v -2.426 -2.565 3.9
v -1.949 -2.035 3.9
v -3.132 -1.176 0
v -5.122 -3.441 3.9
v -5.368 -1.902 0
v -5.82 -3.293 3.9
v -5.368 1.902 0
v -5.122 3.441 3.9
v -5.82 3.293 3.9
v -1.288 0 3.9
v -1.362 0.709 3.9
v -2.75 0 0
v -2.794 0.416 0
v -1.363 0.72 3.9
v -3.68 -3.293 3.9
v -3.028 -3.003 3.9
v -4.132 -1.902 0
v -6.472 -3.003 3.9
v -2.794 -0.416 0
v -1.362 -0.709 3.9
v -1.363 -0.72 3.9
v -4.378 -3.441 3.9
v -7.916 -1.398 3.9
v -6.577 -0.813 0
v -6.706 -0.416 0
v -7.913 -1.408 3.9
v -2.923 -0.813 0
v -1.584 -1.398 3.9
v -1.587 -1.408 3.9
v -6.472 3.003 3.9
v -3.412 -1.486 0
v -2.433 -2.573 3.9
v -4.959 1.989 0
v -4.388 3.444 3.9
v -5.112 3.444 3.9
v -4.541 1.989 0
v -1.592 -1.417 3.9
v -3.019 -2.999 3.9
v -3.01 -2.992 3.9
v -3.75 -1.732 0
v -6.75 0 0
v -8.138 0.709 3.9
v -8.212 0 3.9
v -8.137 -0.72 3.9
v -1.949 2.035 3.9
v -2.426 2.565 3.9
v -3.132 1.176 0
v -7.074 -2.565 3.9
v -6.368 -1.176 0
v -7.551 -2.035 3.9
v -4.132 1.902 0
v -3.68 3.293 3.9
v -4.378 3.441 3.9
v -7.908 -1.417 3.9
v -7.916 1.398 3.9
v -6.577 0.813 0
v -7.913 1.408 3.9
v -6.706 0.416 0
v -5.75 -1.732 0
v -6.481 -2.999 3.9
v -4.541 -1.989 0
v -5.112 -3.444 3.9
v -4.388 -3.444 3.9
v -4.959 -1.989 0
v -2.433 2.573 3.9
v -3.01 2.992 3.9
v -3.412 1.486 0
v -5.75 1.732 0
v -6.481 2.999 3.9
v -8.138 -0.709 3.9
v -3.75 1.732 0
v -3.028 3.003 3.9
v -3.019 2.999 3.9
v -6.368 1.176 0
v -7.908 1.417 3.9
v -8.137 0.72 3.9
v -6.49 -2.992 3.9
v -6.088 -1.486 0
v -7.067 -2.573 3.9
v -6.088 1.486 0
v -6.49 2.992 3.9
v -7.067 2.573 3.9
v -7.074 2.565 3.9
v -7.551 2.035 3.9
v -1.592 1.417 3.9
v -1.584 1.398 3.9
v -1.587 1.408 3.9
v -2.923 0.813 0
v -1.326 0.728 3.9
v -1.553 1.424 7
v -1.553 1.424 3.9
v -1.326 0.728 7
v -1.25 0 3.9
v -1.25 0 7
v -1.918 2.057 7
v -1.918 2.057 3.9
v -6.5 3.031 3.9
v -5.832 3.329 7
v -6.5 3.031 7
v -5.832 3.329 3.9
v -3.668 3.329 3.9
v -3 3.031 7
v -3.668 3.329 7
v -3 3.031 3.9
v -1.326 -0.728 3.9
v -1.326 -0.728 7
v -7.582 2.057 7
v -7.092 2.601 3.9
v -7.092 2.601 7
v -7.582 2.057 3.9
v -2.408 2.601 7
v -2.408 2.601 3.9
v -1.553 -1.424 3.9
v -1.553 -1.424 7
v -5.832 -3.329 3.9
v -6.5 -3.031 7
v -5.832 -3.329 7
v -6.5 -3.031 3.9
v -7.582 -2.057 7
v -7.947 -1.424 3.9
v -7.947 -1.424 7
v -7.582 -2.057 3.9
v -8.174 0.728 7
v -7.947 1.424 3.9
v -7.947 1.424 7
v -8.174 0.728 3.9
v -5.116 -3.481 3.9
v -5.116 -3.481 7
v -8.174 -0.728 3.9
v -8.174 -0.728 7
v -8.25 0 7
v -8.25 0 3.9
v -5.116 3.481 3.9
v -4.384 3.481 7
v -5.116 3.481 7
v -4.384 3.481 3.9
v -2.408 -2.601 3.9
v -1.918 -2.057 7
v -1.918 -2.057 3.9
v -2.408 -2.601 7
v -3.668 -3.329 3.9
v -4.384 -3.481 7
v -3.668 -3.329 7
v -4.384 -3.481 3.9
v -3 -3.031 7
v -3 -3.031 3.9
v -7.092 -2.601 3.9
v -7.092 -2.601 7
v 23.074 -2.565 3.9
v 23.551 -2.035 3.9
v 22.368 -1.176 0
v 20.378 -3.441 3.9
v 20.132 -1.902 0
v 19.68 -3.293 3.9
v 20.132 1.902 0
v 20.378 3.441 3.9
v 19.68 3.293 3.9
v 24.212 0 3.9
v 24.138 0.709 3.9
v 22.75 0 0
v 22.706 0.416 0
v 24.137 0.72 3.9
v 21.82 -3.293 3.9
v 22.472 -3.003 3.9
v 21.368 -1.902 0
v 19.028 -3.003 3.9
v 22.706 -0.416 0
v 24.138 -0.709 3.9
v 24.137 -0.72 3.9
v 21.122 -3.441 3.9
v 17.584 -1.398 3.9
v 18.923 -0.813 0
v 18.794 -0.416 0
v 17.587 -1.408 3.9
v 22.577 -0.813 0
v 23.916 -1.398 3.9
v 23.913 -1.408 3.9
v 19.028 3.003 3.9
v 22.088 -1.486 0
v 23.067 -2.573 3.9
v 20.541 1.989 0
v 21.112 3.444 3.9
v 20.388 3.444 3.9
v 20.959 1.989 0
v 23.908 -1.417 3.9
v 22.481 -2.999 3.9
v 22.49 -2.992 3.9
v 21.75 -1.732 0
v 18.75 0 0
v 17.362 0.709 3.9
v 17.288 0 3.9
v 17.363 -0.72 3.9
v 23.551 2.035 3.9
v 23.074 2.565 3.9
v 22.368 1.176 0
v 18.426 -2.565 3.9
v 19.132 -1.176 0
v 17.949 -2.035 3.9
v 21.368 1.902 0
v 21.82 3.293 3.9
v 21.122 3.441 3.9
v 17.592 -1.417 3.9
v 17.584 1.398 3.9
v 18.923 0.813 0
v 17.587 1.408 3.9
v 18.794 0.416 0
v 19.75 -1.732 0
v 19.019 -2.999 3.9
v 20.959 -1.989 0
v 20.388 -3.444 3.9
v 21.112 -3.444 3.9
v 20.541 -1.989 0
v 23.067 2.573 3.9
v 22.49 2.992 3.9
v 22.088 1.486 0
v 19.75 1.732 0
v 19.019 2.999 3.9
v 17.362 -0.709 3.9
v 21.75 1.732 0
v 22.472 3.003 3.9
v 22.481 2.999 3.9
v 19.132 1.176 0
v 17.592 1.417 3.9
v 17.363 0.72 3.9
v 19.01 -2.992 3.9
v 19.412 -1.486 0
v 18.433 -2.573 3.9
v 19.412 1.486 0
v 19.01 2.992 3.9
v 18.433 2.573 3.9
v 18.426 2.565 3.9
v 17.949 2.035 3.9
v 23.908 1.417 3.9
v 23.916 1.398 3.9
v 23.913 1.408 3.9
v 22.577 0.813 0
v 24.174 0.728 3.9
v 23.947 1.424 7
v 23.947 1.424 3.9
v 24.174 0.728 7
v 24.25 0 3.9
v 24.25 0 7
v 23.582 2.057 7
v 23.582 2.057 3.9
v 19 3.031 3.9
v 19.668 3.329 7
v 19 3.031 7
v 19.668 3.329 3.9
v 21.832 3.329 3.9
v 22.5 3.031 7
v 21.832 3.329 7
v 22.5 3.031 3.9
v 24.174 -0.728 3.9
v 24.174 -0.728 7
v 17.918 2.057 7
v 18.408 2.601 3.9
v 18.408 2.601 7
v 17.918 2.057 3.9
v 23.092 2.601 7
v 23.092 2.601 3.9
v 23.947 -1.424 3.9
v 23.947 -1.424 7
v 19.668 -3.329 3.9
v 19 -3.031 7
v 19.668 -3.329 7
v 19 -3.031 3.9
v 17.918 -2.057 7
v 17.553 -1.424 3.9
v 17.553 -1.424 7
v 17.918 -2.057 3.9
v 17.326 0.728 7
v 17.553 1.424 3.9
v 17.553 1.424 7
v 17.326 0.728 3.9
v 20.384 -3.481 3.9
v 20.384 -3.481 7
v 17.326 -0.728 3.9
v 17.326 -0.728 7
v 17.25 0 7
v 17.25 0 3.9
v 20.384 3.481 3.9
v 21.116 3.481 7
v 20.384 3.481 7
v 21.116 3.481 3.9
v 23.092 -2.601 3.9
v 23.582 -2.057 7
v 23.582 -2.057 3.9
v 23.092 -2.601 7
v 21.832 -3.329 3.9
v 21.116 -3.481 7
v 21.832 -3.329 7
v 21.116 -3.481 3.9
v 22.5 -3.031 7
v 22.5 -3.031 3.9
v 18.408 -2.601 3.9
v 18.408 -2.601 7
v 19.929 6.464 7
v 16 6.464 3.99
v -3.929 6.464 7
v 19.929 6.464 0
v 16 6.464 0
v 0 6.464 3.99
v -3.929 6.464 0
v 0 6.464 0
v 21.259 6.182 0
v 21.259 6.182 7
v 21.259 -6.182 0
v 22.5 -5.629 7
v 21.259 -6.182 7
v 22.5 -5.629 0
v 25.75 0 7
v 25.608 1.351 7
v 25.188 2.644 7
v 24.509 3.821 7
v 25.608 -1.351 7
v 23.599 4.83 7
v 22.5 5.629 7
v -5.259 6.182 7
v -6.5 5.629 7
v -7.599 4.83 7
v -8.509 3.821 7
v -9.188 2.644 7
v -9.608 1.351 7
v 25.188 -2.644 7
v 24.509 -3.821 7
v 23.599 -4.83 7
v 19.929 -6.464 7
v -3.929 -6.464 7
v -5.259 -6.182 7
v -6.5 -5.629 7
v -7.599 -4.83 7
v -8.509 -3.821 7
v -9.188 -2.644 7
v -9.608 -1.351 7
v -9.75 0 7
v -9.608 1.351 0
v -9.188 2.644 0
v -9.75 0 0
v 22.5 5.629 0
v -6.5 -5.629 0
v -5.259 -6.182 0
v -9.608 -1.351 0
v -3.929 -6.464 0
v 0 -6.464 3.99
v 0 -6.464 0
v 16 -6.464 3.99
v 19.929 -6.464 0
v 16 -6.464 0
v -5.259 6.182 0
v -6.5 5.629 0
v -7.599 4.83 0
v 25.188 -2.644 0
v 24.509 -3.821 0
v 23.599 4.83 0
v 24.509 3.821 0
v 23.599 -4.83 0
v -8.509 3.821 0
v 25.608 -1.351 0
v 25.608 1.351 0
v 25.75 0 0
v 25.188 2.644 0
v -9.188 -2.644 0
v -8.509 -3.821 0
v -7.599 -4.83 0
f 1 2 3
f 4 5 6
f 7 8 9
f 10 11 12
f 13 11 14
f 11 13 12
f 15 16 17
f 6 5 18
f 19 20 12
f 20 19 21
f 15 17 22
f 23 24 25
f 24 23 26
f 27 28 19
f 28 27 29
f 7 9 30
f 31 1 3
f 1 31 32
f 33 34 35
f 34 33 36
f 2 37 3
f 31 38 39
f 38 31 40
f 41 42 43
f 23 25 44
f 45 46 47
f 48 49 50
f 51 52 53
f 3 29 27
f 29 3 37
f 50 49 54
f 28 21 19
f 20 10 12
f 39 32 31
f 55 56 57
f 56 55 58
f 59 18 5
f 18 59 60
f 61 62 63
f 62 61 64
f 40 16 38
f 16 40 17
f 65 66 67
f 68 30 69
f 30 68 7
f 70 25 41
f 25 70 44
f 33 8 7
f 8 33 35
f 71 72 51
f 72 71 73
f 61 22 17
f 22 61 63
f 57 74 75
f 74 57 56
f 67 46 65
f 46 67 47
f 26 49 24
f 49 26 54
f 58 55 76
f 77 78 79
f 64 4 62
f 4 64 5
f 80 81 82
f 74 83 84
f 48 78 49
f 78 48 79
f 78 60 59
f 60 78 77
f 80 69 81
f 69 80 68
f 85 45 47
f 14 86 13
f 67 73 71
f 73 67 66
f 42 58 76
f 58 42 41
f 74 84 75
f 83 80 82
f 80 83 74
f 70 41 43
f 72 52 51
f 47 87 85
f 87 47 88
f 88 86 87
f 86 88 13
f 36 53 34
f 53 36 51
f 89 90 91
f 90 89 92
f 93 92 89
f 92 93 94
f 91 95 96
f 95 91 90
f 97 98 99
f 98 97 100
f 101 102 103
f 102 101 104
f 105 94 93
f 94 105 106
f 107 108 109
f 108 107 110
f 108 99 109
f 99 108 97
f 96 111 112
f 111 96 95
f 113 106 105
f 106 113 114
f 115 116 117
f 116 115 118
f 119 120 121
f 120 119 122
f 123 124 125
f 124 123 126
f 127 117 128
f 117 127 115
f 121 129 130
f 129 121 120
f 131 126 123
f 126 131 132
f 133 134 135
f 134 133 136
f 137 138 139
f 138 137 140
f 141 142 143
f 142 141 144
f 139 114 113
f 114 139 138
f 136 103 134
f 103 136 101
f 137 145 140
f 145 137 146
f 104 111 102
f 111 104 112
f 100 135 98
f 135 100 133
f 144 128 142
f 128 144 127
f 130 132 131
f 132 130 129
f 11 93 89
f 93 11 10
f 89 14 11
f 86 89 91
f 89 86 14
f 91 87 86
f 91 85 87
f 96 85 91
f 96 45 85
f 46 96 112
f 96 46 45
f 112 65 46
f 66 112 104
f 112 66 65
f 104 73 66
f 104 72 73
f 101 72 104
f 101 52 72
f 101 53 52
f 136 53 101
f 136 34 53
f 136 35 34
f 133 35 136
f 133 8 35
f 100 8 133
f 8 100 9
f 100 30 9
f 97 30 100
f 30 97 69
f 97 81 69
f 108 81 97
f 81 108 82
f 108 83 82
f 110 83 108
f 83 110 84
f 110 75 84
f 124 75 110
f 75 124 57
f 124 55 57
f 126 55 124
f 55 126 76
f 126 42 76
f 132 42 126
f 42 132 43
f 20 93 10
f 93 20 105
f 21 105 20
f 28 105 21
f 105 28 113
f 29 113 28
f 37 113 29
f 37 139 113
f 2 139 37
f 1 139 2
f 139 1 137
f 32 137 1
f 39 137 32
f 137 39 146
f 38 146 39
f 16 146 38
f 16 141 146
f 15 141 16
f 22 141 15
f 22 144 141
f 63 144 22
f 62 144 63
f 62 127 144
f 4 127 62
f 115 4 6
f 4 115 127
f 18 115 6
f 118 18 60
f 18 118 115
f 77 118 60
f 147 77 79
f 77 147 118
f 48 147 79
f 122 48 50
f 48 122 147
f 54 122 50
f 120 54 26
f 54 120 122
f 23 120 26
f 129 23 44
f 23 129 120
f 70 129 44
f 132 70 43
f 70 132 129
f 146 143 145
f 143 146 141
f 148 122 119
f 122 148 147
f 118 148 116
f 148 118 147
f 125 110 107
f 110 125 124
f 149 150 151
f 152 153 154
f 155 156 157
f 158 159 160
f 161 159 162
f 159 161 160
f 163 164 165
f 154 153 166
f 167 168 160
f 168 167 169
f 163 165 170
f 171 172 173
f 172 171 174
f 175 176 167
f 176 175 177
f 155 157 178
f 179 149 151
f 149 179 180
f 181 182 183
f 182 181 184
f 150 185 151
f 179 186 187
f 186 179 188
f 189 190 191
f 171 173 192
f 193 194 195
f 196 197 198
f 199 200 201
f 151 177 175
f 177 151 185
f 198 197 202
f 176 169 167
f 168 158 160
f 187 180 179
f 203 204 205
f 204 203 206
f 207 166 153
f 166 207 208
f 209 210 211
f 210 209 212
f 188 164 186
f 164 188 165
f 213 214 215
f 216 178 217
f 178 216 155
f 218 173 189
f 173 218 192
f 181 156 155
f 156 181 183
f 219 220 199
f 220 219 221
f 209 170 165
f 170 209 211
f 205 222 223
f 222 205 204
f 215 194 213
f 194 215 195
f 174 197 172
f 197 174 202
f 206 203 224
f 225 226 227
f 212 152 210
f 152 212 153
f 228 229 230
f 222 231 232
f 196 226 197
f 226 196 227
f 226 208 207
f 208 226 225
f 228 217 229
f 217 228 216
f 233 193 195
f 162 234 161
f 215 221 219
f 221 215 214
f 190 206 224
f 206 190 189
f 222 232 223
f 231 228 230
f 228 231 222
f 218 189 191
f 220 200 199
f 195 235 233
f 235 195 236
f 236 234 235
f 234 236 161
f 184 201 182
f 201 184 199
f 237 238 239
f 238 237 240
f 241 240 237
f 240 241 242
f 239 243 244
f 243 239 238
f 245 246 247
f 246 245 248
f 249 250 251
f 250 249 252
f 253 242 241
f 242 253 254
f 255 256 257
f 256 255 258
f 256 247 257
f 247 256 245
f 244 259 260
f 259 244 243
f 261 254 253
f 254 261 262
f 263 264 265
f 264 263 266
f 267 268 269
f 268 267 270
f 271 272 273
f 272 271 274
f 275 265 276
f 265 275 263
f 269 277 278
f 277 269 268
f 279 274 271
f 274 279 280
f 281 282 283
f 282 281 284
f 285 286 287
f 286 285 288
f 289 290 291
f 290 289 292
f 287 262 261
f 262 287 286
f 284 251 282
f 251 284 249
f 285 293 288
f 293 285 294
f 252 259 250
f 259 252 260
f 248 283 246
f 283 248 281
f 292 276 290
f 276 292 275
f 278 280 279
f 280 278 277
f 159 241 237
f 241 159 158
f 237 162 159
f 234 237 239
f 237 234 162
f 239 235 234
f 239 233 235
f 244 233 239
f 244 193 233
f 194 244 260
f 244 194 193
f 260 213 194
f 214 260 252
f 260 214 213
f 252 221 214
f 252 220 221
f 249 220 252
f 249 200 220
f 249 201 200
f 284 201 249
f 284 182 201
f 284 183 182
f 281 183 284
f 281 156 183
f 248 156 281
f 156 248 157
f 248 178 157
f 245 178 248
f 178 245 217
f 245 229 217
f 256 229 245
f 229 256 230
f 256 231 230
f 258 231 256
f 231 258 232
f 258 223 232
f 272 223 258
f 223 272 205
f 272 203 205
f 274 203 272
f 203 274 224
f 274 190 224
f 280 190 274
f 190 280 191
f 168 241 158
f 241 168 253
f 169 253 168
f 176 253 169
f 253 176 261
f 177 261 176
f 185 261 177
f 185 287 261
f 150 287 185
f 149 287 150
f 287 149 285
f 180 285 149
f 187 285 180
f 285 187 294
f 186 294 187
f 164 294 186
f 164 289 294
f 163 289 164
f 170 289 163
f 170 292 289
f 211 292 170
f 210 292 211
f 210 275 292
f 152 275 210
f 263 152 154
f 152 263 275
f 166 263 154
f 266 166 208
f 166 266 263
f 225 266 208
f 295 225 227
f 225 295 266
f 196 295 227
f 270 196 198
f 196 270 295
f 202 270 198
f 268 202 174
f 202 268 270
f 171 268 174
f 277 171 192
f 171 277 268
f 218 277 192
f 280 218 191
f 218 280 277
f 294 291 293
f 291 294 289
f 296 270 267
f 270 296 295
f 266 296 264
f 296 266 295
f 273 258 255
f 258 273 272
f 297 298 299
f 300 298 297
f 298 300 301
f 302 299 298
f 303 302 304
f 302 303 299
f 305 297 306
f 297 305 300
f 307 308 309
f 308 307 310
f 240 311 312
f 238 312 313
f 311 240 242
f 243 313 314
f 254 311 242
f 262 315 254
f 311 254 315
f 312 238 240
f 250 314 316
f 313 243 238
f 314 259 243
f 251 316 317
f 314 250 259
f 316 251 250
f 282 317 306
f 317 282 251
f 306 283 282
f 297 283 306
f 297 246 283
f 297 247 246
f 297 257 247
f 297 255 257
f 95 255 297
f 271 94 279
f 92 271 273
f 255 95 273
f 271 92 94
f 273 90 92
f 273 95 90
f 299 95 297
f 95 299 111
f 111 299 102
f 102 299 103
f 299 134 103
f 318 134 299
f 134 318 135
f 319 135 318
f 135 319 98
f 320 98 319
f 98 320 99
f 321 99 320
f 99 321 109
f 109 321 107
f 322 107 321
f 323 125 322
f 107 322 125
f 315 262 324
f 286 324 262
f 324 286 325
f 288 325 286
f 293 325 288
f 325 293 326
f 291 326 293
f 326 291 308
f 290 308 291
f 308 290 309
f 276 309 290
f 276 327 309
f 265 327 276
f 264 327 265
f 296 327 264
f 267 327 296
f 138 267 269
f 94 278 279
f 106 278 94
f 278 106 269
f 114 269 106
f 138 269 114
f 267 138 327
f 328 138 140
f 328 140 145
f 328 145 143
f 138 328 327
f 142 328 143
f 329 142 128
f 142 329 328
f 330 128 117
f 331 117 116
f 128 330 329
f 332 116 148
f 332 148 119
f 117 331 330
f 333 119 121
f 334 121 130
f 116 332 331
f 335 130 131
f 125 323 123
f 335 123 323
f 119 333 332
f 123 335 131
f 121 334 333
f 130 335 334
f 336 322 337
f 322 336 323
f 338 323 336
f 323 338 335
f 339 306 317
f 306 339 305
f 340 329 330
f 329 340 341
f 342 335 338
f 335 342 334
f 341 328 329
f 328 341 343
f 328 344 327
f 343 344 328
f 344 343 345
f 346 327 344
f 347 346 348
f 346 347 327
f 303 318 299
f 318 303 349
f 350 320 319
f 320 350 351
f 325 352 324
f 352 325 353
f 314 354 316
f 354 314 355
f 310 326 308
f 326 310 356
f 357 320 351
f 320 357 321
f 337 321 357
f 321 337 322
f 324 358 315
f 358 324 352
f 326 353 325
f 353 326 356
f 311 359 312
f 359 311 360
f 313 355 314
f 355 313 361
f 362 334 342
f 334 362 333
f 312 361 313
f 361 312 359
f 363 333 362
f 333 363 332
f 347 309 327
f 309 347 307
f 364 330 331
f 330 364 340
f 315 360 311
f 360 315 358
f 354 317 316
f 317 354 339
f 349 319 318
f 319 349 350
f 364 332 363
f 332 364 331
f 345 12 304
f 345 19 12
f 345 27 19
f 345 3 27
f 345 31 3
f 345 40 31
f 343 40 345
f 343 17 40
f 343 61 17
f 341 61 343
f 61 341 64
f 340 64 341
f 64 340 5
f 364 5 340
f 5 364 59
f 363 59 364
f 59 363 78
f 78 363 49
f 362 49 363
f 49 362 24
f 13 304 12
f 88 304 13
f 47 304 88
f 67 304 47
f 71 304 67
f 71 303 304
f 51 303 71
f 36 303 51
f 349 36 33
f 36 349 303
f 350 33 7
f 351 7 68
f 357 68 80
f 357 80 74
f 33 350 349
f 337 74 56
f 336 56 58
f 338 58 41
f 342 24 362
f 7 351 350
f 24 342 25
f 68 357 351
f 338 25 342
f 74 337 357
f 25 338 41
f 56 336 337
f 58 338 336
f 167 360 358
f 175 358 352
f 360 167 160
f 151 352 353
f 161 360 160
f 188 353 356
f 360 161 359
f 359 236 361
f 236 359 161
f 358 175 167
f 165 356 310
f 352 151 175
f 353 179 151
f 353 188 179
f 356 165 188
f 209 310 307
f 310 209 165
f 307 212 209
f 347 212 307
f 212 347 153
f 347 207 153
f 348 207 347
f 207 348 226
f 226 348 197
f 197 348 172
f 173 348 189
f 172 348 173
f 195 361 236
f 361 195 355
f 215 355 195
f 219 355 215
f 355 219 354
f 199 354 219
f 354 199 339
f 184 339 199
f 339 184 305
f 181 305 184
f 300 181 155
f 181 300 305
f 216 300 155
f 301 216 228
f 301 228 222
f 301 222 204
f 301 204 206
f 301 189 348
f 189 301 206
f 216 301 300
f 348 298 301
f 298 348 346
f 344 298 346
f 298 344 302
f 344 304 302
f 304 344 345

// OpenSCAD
led_width = 16;
led_height = 4;
screw_diam = 2;
screw_head = 3.5;
screw_head_height = 4;

thickness = 3;
radius_thickness = 3;
width = 10;
$fn = 30;

module holder() {
    translate([-0.5*(screw_head+radius_thickness), 0, 0])
    hull() {
        cylinder(h = led_height + thickness, r = screw_head+radius_thickness);

        translate([led_width+screw_head+radius_thickness, 0, 0 ])
        cylinder(h = led_height + thickness, r = screw_head+radius_thickness);
    }
}

module screw() {
    cylinder(h = screw_head_height, r1 = screw_diam, r2 = screw_head);
    translate([0, 0, screw_head_height-0.1])
    cylinder(h = 2*screw_head_height, r = screw_head);
    translate([0, 0, -2*screw_head_height+0.1])
    cylinder(h = 2*screw_head_height, r = screw_diam);
}

module led() {
    translate([0, -5*led_width, -0.01])
    cube([led_width, 10*led_width, led_height]);
}

difference() {
    holder();
    led();

    translate([-0.5*screw_head-radius_thickness, 0, 0])
    screw();
    
    translate([led_width+0.5*screw_head+radius_thickness, 0, 0])
    screw();
}
